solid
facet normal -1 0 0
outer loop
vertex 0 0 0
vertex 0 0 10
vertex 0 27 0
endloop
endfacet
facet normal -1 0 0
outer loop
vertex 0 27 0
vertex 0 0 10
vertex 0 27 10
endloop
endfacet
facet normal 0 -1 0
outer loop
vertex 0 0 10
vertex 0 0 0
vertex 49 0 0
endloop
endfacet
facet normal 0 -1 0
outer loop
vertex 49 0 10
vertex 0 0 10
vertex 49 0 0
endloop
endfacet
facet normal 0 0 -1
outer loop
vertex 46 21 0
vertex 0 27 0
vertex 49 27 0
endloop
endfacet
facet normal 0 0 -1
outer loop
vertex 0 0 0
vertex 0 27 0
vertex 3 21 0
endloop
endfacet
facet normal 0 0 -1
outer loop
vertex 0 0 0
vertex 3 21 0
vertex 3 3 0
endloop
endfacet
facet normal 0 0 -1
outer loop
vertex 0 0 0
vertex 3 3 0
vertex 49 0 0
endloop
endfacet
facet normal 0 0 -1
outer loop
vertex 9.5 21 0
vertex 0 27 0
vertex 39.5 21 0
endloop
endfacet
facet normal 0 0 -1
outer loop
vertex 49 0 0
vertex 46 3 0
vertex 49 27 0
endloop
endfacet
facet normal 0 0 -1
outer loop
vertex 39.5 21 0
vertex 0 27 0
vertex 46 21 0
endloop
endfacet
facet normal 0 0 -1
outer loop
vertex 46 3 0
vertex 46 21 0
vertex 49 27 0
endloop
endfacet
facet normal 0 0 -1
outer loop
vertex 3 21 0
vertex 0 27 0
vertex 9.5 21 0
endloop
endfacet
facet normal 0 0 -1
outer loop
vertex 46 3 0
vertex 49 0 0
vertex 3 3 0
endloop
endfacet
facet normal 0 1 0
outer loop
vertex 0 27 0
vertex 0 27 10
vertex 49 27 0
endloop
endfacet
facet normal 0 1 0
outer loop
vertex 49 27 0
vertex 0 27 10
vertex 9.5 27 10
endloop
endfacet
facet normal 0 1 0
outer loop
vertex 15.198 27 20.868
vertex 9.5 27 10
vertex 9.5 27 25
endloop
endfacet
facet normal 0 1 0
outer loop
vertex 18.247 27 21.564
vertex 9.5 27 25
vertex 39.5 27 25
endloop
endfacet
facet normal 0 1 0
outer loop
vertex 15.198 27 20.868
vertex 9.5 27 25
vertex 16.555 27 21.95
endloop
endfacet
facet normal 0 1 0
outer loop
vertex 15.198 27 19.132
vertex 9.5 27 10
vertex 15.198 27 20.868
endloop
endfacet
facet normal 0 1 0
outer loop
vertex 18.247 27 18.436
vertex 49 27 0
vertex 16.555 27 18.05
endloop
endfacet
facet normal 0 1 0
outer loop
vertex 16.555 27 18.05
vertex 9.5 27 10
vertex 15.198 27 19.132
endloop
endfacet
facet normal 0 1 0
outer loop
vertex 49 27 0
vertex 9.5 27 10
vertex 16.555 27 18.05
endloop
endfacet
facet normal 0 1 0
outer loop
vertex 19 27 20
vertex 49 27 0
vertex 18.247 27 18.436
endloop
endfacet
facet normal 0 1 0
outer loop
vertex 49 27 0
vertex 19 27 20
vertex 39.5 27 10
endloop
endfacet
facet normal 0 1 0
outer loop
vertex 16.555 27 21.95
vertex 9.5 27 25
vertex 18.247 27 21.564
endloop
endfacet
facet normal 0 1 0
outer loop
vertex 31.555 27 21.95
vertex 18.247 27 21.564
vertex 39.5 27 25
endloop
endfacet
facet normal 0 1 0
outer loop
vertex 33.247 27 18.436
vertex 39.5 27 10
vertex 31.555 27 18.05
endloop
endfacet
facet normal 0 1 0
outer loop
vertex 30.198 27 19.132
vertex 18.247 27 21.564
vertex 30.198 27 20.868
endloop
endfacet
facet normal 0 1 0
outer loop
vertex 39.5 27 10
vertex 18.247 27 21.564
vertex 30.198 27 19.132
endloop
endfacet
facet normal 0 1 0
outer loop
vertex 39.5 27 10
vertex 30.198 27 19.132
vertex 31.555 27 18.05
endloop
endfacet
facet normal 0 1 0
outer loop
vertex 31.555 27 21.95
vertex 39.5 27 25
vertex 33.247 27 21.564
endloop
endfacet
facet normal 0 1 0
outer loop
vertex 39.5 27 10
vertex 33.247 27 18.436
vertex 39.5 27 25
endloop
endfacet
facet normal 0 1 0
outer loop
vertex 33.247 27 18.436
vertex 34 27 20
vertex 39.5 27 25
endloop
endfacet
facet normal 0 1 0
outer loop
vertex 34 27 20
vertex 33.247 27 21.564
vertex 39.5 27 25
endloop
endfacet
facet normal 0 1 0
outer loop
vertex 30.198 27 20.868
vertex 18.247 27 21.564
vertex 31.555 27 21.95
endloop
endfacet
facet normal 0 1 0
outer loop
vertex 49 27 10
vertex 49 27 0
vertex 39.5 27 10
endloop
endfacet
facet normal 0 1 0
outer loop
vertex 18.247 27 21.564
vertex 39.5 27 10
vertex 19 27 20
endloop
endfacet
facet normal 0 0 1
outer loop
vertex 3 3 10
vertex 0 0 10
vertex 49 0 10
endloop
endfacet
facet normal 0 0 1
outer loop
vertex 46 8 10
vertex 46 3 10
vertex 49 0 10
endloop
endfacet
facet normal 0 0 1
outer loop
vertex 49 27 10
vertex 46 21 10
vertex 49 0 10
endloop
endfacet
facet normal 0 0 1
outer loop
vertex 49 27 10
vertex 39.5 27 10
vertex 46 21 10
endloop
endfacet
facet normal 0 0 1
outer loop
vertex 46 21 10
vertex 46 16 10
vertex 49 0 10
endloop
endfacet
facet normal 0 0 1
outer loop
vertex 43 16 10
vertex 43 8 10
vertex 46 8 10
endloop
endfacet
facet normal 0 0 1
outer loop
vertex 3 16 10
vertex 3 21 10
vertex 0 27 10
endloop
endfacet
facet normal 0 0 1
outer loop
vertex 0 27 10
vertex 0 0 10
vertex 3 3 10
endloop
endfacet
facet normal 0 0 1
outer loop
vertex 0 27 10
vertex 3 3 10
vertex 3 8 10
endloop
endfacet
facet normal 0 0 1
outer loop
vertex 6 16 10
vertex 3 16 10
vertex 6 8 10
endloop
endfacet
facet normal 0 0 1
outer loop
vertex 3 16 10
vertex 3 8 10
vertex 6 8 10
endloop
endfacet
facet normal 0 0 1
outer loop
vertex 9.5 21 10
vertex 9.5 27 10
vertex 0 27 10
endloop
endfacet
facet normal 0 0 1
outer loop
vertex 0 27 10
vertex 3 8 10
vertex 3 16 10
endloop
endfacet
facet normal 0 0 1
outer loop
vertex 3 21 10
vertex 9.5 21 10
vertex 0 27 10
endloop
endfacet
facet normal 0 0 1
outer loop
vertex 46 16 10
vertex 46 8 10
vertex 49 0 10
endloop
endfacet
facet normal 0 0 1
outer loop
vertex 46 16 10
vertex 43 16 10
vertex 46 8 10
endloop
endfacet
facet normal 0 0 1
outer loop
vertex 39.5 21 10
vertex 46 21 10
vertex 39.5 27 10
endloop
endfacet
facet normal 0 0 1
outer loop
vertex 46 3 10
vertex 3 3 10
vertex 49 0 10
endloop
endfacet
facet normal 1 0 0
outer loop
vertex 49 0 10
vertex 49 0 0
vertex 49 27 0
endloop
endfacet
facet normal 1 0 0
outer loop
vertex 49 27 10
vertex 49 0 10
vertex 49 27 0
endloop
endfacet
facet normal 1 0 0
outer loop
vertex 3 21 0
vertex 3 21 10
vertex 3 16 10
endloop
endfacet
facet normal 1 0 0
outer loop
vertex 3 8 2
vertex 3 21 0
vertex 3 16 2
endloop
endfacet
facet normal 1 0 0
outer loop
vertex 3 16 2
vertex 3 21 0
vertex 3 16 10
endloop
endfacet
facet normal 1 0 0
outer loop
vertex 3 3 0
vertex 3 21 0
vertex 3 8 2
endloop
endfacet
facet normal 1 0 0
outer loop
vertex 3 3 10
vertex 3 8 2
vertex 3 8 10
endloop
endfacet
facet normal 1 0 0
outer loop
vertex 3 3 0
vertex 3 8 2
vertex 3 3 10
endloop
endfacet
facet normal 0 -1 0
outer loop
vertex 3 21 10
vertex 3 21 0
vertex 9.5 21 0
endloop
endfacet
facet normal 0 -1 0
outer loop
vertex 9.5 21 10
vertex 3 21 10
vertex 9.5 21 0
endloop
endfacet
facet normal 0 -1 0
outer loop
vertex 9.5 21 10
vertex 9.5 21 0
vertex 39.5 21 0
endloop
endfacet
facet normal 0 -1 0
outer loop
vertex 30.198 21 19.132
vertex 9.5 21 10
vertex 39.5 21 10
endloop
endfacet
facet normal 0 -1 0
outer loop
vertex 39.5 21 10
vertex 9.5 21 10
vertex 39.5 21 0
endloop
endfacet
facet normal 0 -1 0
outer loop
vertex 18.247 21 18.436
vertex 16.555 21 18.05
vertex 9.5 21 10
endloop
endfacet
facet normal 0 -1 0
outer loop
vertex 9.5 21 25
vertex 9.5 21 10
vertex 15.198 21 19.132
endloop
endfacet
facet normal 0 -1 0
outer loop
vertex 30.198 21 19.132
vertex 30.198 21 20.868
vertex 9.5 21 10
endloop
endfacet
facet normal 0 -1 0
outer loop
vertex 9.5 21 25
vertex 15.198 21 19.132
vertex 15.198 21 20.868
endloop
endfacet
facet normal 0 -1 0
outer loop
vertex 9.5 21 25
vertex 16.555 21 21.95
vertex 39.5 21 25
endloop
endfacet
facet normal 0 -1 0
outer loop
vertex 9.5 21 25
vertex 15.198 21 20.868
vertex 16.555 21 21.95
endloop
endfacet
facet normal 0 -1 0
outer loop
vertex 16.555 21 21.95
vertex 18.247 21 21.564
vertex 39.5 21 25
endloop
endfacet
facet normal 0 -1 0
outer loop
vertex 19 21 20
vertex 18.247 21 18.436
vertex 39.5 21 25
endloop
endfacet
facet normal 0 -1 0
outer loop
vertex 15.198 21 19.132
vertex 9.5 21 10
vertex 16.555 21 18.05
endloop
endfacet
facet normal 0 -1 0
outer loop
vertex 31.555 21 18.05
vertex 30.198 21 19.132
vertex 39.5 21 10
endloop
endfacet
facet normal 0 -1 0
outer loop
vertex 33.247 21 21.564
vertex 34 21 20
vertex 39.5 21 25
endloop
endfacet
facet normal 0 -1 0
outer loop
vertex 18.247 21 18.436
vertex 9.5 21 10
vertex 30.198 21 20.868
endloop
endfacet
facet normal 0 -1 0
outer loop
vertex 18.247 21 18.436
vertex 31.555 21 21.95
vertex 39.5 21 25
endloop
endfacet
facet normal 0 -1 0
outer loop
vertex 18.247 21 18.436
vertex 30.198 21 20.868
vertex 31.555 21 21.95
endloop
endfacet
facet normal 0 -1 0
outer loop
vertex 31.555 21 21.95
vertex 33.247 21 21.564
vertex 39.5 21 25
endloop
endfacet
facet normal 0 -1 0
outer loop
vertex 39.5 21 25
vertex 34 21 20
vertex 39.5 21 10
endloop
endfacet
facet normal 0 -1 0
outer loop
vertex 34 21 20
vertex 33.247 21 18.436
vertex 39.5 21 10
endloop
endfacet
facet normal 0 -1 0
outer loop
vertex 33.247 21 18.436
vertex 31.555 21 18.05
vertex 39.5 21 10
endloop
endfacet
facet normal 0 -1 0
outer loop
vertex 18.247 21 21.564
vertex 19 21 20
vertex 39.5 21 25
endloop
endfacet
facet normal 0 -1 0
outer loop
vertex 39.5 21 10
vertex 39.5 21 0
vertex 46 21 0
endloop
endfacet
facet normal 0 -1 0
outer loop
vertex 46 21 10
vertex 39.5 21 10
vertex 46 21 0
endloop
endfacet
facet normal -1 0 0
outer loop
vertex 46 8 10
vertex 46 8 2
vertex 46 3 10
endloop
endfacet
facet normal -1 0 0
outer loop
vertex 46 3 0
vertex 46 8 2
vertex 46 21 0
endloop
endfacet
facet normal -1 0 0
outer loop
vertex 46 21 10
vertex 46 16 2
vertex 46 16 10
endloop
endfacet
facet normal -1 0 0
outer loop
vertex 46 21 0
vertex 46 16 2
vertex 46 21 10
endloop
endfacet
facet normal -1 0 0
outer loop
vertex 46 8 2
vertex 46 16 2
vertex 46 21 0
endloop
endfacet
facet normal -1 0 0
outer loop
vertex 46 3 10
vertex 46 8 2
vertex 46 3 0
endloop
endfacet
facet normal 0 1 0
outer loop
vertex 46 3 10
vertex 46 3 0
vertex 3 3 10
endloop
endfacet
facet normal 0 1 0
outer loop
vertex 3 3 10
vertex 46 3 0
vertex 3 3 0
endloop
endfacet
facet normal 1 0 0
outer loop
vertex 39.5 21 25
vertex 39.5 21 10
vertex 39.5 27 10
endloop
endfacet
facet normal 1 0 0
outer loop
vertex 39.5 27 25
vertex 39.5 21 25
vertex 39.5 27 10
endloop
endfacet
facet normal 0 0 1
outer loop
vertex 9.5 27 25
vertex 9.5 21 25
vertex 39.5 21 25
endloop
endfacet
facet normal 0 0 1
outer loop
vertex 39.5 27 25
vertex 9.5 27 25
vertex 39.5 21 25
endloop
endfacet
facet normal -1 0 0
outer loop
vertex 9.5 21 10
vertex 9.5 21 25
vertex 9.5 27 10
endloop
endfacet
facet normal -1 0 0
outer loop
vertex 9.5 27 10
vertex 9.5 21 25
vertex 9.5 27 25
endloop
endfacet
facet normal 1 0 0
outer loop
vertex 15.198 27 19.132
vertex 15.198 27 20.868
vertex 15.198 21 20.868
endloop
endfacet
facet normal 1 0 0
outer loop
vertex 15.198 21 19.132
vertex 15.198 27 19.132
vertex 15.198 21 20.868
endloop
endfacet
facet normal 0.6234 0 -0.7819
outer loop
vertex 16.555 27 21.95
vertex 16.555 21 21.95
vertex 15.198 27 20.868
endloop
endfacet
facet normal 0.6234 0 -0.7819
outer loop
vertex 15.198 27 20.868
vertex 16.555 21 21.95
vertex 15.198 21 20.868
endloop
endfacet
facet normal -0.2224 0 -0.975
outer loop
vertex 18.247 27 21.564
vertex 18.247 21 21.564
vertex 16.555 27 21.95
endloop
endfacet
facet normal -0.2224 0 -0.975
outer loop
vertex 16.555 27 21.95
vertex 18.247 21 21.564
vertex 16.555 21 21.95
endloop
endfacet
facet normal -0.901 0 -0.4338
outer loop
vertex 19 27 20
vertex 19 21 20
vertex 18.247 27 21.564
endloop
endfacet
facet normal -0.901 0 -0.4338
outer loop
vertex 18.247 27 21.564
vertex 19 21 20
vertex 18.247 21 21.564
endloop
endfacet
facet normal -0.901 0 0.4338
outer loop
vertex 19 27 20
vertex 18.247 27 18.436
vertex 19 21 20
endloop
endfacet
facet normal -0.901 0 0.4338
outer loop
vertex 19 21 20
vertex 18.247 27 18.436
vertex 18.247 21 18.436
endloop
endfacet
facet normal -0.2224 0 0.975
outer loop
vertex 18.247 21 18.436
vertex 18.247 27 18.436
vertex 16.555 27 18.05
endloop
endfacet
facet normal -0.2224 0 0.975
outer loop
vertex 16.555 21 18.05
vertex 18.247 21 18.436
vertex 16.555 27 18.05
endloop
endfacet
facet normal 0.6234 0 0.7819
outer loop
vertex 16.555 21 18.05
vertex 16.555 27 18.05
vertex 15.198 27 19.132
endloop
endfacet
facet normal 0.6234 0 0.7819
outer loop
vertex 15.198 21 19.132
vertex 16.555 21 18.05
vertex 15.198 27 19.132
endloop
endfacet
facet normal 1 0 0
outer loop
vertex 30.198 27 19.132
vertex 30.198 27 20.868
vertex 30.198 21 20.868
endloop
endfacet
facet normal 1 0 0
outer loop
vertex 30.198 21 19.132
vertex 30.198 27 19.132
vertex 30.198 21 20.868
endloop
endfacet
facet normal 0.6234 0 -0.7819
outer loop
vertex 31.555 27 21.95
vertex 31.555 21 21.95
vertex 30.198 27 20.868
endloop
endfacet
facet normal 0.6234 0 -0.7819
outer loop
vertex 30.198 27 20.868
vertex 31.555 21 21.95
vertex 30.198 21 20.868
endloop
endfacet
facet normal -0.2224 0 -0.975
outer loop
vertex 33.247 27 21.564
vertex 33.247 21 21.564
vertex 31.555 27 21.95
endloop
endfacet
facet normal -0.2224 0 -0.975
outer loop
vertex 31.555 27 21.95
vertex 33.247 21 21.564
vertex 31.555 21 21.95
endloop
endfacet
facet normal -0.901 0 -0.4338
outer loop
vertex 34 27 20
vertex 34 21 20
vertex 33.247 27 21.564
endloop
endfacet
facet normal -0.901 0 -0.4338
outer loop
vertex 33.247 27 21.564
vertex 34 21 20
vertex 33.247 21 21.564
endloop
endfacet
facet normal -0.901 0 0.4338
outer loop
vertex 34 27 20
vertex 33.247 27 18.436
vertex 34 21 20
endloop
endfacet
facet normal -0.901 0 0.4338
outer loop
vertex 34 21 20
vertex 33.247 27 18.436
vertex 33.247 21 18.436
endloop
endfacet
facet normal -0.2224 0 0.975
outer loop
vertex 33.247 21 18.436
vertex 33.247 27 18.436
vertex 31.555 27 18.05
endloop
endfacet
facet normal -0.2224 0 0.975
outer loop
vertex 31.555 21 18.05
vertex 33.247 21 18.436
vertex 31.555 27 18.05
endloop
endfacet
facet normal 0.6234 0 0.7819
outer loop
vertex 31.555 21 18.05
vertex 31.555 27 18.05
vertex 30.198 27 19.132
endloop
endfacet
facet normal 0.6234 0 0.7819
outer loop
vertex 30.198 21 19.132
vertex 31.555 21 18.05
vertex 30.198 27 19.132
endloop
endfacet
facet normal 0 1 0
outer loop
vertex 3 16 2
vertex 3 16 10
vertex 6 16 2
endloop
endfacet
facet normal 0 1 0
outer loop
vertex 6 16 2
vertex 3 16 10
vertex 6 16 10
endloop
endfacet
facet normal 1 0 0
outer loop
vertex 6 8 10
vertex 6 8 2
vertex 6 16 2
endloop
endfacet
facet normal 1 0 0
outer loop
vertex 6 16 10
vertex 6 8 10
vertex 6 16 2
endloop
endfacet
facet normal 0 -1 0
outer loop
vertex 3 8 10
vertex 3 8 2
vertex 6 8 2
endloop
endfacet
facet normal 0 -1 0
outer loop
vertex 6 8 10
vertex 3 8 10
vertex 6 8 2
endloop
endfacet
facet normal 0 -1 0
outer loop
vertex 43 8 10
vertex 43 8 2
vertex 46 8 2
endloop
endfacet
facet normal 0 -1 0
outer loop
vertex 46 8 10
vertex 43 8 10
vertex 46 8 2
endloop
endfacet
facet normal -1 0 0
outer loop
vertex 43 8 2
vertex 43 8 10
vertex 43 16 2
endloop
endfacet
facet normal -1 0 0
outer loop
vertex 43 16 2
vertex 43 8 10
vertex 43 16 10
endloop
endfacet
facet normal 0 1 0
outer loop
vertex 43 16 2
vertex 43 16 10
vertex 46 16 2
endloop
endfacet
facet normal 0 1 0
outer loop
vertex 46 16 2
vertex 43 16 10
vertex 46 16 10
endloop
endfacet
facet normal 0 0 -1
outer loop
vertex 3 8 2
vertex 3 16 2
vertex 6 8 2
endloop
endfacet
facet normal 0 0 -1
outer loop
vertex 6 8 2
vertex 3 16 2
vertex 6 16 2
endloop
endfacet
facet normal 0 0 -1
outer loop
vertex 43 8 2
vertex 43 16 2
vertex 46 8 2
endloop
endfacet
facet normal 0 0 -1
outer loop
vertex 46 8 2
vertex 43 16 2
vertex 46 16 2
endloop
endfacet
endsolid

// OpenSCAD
module Box_Arduino_micro(l,w,h,spessore,torretta)
{
	//hole
	function r_from_dia(d) = d / 2;
	
	module rotcy(rot, r, h) {
			rotate(90, rot)
			cylinder(r = r, h = h, center = true);
	}
	size = 10;
	hole = 4;
	centro = l/2;

	cy_r = r_from_dia(hole);
	cy_h = r_from_dia(size * 2.5);

	//Tower
	difference()
	{
		translate([l/2,w,(25)/2]) cube([30,spessore*2,25], center = true);
		//front hole
		for (i = [[centro+7.5,w,torretta-10],[centro - 7.5,w,torretta-10]]) {
			translate(i) rotcy([1, 0, 0], cy_r, cy_h);
		}
	}	

	difference()
	{
		cube([l,w,h]);
		translate([spessore,spessore,-1])cube([l-(spessore*2),w-(spessore*2),30]);
	
	};
	//block
	for (i = [[spessore,w/2,(h+2)/2],[l-spessore,w/2,(h+2)/2]]) {
	translate(i) cube([spessore*2,w/3,h-2], center =true);
	}
	//reinforce
	translate([0,w,0]) cube([l,spessore,h]);
}

Box_Arduino_micro(49,24,10,3,30);
